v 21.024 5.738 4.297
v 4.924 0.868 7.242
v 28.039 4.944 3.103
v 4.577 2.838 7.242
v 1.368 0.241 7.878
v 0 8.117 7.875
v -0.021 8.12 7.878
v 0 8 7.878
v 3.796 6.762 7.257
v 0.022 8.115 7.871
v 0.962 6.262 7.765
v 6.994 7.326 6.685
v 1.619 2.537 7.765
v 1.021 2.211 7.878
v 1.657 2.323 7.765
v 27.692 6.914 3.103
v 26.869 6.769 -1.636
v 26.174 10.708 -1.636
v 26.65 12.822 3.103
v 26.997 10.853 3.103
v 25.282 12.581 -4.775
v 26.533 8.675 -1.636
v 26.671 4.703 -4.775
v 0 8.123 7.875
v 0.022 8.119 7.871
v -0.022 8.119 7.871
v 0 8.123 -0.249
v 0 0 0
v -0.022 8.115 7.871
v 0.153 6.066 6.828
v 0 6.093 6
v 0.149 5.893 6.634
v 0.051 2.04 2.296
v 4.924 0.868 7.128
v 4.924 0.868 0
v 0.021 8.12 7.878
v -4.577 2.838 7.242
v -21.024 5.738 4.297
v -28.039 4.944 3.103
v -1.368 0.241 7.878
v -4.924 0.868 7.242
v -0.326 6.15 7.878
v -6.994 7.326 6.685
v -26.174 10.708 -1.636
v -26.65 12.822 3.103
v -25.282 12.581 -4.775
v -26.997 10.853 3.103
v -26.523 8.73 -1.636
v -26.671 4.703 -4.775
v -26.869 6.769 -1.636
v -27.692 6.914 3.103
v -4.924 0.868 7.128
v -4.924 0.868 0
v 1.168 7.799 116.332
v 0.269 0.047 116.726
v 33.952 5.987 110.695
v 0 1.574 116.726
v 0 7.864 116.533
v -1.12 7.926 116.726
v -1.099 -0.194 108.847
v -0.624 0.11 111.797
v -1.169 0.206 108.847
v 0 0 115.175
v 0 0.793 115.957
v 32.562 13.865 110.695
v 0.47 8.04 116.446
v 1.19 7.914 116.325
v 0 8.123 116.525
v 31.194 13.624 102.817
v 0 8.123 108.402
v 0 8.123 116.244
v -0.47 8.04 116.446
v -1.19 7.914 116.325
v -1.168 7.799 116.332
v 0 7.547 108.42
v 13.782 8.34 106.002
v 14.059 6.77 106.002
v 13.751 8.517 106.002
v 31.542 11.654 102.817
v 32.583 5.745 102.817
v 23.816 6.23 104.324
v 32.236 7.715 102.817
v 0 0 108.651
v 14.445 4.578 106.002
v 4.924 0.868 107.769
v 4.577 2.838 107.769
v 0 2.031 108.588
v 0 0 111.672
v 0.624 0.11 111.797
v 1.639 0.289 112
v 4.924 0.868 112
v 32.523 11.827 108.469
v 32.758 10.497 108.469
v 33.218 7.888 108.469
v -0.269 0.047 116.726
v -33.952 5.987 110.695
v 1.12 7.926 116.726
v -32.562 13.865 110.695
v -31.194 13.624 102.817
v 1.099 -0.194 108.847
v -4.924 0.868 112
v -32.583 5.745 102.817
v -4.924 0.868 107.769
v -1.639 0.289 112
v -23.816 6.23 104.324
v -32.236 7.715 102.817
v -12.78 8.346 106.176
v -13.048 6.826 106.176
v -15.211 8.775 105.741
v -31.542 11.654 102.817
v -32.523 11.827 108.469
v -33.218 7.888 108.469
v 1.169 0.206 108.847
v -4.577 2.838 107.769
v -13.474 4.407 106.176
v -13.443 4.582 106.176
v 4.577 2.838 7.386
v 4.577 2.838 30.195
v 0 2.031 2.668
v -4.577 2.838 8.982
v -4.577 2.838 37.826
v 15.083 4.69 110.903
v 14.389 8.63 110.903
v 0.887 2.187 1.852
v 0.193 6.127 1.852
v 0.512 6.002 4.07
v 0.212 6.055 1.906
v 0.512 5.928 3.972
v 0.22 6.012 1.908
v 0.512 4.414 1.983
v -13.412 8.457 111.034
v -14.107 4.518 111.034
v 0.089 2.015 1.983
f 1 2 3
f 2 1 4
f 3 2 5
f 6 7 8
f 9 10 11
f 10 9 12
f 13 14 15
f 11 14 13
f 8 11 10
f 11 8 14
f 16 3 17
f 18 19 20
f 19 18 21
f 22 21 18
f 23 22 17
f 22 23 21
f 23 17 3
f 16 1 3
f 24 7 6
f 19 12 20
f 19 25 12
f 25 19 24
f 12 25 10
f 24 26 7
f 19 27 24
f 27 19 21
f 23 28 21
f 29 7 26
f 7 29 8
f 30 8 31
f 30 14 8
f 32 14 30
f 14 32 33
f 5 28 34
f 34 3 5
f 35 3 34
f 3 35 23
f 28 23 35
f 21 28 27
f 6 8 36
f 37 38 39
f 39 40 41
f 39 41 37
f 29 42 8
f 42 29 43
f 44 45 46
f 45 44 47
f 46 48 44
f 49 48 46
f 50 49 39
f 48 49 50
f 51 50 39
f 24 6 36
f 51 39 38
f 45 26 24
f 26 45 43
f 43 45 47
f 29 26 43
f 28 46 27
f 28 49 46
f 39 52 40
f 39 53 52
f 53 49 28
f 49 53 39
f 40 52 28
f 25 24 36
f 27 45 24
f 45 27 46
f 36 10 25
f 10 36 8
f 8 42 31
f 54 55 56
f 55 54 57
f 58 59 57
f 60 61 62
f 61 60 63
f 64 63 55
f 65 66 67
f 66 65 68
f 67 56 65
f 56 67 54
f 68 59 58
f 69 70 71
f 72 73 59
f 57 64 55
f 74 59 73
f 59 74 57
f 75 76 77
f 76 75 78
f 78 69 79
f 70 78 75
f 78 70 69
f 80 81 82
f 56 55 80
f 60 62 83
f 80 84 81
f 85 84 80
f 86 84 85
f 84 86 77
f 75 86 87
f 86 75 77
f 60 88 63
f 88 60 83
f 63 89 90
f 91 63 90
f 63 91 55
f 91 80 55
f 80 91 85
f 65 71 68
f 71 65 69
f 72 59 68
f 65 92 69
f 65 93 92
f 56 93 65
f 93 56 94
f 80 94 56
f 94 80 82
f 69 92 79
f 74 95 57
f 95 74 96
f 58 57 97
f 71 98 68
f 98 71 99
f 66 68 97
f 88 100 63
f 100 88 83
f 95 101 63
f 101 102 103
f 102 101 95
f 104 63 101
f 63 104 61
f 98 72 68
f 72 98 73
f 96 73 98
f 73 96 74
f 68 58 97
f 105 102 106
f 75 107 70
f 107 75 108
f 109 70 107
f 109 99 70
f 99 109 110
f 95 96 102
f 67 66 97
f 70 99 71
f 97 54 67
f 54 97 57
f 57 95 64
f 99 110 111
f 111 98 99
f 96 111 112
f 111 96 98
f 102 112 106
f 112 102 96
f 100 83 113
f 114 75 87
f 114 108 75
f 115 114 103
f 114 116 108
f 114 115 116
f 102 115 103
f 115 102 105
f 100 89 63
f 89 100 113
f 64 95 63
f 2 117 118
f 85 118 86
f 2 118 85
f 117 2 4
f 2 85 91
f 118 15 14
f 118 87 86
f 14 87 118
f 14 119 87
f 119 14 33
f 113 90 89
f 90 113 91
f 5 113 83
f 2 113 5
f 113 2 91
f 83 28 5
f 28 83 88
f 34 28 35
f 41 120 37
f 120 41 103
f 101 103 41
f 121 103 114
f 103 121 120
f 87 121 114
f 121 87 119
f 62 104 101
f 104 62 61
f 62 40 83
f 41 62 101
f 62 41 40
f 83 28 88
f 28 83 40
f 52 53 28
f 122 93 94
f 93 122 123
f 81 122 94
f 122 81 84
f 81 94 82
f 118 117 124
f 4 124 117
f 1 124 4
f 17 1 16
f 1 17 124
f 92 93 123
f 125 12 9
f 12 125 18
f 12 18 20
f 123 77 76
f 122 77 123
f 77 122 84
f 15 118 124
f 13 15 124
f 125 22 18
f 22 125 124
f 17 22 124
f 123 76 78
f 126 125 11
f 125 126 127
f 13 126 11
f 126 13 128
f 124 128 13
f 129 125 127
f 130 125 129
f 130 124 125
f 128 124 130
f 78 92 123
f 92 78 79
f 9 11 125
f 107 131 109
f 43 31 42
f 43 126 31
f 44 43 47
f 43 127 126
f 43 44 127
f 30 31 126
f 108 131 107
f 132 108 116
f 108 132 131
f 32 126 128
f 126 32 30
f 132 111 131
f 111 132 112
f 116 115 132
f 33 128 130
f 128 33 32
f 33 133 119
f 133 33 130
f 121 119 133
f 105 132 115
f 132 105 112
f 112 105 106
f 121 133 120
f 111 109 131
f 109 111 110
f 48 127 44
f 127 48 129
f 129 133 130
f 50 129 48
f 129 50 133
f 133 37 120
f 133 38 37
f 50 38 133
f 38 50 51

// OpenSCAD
width=55;
height=110;
thick=5;
outerRadius=200;
innerRadius=158.366;

leanAngle=52.1;


module topClip() {
    shortEdge = 55 / 2;
    longEdge = 69.459 / 2;
    difference() {
        union(){
            
            rotate([0,10,-350]) translate([0,0,0]) cube([shortEdge, 8, 8]);
            rotate([0,-10,-10]) translate([-shortEdge,0,0]) cube([shortEdge, 8, 8]);
            
            rotate([0,10,-350]) translate([-20,0,107]) cube([longEdge, 8, 8]);
            rotate([0,-10,-10]) translate([-longEdge+20,0,107]) cube([longEdge, 8, 8]);
            
            rotate([0,0,-350]) translate([0,0,0]) cube([5, 2, 112]);
            rotate([0,0,-10]) translate([-5,0,0]) cube([5, 2, 112]);
//            
//           rotate([0,7.53,-350]) translate([1,2,2]) color([0.6,0.6,1,0.5]) cube([width, 4, height]);
//           rotate([0,-7.53,-10]) translate([-width,2,2]) color([0.6,0.6,1,0.5]) cube([width, 4, height]);
            
        }
       union() {
//           rotate([0,0,-350]) translate([1,2,2]) cube([width, 4, height]);
//           rotate([0,0,-10]) translate([-width,2,2]) cube([width, 4, height]);
//           
           rotate([0,7.53,-350]) translate([1,2,2]) color([0.6,0.6,1,0.5]) cube([width, 4, height]);
           rotate([0,-7.53,-10]) translate([-width,2,2]) color([0.6,0.6,1,0.5]) cube([width, 4, height]);
           
//           rotate([0,0,-350]) translate([7,2,113.9]) cube([longEdge, 4, 6.1]);
//           rotate([0,0,-10]) translate([-longEdge-7,2,113.9]) cube([longEdge, 4, 6.1]);
       }
   } 
}

topClip();
